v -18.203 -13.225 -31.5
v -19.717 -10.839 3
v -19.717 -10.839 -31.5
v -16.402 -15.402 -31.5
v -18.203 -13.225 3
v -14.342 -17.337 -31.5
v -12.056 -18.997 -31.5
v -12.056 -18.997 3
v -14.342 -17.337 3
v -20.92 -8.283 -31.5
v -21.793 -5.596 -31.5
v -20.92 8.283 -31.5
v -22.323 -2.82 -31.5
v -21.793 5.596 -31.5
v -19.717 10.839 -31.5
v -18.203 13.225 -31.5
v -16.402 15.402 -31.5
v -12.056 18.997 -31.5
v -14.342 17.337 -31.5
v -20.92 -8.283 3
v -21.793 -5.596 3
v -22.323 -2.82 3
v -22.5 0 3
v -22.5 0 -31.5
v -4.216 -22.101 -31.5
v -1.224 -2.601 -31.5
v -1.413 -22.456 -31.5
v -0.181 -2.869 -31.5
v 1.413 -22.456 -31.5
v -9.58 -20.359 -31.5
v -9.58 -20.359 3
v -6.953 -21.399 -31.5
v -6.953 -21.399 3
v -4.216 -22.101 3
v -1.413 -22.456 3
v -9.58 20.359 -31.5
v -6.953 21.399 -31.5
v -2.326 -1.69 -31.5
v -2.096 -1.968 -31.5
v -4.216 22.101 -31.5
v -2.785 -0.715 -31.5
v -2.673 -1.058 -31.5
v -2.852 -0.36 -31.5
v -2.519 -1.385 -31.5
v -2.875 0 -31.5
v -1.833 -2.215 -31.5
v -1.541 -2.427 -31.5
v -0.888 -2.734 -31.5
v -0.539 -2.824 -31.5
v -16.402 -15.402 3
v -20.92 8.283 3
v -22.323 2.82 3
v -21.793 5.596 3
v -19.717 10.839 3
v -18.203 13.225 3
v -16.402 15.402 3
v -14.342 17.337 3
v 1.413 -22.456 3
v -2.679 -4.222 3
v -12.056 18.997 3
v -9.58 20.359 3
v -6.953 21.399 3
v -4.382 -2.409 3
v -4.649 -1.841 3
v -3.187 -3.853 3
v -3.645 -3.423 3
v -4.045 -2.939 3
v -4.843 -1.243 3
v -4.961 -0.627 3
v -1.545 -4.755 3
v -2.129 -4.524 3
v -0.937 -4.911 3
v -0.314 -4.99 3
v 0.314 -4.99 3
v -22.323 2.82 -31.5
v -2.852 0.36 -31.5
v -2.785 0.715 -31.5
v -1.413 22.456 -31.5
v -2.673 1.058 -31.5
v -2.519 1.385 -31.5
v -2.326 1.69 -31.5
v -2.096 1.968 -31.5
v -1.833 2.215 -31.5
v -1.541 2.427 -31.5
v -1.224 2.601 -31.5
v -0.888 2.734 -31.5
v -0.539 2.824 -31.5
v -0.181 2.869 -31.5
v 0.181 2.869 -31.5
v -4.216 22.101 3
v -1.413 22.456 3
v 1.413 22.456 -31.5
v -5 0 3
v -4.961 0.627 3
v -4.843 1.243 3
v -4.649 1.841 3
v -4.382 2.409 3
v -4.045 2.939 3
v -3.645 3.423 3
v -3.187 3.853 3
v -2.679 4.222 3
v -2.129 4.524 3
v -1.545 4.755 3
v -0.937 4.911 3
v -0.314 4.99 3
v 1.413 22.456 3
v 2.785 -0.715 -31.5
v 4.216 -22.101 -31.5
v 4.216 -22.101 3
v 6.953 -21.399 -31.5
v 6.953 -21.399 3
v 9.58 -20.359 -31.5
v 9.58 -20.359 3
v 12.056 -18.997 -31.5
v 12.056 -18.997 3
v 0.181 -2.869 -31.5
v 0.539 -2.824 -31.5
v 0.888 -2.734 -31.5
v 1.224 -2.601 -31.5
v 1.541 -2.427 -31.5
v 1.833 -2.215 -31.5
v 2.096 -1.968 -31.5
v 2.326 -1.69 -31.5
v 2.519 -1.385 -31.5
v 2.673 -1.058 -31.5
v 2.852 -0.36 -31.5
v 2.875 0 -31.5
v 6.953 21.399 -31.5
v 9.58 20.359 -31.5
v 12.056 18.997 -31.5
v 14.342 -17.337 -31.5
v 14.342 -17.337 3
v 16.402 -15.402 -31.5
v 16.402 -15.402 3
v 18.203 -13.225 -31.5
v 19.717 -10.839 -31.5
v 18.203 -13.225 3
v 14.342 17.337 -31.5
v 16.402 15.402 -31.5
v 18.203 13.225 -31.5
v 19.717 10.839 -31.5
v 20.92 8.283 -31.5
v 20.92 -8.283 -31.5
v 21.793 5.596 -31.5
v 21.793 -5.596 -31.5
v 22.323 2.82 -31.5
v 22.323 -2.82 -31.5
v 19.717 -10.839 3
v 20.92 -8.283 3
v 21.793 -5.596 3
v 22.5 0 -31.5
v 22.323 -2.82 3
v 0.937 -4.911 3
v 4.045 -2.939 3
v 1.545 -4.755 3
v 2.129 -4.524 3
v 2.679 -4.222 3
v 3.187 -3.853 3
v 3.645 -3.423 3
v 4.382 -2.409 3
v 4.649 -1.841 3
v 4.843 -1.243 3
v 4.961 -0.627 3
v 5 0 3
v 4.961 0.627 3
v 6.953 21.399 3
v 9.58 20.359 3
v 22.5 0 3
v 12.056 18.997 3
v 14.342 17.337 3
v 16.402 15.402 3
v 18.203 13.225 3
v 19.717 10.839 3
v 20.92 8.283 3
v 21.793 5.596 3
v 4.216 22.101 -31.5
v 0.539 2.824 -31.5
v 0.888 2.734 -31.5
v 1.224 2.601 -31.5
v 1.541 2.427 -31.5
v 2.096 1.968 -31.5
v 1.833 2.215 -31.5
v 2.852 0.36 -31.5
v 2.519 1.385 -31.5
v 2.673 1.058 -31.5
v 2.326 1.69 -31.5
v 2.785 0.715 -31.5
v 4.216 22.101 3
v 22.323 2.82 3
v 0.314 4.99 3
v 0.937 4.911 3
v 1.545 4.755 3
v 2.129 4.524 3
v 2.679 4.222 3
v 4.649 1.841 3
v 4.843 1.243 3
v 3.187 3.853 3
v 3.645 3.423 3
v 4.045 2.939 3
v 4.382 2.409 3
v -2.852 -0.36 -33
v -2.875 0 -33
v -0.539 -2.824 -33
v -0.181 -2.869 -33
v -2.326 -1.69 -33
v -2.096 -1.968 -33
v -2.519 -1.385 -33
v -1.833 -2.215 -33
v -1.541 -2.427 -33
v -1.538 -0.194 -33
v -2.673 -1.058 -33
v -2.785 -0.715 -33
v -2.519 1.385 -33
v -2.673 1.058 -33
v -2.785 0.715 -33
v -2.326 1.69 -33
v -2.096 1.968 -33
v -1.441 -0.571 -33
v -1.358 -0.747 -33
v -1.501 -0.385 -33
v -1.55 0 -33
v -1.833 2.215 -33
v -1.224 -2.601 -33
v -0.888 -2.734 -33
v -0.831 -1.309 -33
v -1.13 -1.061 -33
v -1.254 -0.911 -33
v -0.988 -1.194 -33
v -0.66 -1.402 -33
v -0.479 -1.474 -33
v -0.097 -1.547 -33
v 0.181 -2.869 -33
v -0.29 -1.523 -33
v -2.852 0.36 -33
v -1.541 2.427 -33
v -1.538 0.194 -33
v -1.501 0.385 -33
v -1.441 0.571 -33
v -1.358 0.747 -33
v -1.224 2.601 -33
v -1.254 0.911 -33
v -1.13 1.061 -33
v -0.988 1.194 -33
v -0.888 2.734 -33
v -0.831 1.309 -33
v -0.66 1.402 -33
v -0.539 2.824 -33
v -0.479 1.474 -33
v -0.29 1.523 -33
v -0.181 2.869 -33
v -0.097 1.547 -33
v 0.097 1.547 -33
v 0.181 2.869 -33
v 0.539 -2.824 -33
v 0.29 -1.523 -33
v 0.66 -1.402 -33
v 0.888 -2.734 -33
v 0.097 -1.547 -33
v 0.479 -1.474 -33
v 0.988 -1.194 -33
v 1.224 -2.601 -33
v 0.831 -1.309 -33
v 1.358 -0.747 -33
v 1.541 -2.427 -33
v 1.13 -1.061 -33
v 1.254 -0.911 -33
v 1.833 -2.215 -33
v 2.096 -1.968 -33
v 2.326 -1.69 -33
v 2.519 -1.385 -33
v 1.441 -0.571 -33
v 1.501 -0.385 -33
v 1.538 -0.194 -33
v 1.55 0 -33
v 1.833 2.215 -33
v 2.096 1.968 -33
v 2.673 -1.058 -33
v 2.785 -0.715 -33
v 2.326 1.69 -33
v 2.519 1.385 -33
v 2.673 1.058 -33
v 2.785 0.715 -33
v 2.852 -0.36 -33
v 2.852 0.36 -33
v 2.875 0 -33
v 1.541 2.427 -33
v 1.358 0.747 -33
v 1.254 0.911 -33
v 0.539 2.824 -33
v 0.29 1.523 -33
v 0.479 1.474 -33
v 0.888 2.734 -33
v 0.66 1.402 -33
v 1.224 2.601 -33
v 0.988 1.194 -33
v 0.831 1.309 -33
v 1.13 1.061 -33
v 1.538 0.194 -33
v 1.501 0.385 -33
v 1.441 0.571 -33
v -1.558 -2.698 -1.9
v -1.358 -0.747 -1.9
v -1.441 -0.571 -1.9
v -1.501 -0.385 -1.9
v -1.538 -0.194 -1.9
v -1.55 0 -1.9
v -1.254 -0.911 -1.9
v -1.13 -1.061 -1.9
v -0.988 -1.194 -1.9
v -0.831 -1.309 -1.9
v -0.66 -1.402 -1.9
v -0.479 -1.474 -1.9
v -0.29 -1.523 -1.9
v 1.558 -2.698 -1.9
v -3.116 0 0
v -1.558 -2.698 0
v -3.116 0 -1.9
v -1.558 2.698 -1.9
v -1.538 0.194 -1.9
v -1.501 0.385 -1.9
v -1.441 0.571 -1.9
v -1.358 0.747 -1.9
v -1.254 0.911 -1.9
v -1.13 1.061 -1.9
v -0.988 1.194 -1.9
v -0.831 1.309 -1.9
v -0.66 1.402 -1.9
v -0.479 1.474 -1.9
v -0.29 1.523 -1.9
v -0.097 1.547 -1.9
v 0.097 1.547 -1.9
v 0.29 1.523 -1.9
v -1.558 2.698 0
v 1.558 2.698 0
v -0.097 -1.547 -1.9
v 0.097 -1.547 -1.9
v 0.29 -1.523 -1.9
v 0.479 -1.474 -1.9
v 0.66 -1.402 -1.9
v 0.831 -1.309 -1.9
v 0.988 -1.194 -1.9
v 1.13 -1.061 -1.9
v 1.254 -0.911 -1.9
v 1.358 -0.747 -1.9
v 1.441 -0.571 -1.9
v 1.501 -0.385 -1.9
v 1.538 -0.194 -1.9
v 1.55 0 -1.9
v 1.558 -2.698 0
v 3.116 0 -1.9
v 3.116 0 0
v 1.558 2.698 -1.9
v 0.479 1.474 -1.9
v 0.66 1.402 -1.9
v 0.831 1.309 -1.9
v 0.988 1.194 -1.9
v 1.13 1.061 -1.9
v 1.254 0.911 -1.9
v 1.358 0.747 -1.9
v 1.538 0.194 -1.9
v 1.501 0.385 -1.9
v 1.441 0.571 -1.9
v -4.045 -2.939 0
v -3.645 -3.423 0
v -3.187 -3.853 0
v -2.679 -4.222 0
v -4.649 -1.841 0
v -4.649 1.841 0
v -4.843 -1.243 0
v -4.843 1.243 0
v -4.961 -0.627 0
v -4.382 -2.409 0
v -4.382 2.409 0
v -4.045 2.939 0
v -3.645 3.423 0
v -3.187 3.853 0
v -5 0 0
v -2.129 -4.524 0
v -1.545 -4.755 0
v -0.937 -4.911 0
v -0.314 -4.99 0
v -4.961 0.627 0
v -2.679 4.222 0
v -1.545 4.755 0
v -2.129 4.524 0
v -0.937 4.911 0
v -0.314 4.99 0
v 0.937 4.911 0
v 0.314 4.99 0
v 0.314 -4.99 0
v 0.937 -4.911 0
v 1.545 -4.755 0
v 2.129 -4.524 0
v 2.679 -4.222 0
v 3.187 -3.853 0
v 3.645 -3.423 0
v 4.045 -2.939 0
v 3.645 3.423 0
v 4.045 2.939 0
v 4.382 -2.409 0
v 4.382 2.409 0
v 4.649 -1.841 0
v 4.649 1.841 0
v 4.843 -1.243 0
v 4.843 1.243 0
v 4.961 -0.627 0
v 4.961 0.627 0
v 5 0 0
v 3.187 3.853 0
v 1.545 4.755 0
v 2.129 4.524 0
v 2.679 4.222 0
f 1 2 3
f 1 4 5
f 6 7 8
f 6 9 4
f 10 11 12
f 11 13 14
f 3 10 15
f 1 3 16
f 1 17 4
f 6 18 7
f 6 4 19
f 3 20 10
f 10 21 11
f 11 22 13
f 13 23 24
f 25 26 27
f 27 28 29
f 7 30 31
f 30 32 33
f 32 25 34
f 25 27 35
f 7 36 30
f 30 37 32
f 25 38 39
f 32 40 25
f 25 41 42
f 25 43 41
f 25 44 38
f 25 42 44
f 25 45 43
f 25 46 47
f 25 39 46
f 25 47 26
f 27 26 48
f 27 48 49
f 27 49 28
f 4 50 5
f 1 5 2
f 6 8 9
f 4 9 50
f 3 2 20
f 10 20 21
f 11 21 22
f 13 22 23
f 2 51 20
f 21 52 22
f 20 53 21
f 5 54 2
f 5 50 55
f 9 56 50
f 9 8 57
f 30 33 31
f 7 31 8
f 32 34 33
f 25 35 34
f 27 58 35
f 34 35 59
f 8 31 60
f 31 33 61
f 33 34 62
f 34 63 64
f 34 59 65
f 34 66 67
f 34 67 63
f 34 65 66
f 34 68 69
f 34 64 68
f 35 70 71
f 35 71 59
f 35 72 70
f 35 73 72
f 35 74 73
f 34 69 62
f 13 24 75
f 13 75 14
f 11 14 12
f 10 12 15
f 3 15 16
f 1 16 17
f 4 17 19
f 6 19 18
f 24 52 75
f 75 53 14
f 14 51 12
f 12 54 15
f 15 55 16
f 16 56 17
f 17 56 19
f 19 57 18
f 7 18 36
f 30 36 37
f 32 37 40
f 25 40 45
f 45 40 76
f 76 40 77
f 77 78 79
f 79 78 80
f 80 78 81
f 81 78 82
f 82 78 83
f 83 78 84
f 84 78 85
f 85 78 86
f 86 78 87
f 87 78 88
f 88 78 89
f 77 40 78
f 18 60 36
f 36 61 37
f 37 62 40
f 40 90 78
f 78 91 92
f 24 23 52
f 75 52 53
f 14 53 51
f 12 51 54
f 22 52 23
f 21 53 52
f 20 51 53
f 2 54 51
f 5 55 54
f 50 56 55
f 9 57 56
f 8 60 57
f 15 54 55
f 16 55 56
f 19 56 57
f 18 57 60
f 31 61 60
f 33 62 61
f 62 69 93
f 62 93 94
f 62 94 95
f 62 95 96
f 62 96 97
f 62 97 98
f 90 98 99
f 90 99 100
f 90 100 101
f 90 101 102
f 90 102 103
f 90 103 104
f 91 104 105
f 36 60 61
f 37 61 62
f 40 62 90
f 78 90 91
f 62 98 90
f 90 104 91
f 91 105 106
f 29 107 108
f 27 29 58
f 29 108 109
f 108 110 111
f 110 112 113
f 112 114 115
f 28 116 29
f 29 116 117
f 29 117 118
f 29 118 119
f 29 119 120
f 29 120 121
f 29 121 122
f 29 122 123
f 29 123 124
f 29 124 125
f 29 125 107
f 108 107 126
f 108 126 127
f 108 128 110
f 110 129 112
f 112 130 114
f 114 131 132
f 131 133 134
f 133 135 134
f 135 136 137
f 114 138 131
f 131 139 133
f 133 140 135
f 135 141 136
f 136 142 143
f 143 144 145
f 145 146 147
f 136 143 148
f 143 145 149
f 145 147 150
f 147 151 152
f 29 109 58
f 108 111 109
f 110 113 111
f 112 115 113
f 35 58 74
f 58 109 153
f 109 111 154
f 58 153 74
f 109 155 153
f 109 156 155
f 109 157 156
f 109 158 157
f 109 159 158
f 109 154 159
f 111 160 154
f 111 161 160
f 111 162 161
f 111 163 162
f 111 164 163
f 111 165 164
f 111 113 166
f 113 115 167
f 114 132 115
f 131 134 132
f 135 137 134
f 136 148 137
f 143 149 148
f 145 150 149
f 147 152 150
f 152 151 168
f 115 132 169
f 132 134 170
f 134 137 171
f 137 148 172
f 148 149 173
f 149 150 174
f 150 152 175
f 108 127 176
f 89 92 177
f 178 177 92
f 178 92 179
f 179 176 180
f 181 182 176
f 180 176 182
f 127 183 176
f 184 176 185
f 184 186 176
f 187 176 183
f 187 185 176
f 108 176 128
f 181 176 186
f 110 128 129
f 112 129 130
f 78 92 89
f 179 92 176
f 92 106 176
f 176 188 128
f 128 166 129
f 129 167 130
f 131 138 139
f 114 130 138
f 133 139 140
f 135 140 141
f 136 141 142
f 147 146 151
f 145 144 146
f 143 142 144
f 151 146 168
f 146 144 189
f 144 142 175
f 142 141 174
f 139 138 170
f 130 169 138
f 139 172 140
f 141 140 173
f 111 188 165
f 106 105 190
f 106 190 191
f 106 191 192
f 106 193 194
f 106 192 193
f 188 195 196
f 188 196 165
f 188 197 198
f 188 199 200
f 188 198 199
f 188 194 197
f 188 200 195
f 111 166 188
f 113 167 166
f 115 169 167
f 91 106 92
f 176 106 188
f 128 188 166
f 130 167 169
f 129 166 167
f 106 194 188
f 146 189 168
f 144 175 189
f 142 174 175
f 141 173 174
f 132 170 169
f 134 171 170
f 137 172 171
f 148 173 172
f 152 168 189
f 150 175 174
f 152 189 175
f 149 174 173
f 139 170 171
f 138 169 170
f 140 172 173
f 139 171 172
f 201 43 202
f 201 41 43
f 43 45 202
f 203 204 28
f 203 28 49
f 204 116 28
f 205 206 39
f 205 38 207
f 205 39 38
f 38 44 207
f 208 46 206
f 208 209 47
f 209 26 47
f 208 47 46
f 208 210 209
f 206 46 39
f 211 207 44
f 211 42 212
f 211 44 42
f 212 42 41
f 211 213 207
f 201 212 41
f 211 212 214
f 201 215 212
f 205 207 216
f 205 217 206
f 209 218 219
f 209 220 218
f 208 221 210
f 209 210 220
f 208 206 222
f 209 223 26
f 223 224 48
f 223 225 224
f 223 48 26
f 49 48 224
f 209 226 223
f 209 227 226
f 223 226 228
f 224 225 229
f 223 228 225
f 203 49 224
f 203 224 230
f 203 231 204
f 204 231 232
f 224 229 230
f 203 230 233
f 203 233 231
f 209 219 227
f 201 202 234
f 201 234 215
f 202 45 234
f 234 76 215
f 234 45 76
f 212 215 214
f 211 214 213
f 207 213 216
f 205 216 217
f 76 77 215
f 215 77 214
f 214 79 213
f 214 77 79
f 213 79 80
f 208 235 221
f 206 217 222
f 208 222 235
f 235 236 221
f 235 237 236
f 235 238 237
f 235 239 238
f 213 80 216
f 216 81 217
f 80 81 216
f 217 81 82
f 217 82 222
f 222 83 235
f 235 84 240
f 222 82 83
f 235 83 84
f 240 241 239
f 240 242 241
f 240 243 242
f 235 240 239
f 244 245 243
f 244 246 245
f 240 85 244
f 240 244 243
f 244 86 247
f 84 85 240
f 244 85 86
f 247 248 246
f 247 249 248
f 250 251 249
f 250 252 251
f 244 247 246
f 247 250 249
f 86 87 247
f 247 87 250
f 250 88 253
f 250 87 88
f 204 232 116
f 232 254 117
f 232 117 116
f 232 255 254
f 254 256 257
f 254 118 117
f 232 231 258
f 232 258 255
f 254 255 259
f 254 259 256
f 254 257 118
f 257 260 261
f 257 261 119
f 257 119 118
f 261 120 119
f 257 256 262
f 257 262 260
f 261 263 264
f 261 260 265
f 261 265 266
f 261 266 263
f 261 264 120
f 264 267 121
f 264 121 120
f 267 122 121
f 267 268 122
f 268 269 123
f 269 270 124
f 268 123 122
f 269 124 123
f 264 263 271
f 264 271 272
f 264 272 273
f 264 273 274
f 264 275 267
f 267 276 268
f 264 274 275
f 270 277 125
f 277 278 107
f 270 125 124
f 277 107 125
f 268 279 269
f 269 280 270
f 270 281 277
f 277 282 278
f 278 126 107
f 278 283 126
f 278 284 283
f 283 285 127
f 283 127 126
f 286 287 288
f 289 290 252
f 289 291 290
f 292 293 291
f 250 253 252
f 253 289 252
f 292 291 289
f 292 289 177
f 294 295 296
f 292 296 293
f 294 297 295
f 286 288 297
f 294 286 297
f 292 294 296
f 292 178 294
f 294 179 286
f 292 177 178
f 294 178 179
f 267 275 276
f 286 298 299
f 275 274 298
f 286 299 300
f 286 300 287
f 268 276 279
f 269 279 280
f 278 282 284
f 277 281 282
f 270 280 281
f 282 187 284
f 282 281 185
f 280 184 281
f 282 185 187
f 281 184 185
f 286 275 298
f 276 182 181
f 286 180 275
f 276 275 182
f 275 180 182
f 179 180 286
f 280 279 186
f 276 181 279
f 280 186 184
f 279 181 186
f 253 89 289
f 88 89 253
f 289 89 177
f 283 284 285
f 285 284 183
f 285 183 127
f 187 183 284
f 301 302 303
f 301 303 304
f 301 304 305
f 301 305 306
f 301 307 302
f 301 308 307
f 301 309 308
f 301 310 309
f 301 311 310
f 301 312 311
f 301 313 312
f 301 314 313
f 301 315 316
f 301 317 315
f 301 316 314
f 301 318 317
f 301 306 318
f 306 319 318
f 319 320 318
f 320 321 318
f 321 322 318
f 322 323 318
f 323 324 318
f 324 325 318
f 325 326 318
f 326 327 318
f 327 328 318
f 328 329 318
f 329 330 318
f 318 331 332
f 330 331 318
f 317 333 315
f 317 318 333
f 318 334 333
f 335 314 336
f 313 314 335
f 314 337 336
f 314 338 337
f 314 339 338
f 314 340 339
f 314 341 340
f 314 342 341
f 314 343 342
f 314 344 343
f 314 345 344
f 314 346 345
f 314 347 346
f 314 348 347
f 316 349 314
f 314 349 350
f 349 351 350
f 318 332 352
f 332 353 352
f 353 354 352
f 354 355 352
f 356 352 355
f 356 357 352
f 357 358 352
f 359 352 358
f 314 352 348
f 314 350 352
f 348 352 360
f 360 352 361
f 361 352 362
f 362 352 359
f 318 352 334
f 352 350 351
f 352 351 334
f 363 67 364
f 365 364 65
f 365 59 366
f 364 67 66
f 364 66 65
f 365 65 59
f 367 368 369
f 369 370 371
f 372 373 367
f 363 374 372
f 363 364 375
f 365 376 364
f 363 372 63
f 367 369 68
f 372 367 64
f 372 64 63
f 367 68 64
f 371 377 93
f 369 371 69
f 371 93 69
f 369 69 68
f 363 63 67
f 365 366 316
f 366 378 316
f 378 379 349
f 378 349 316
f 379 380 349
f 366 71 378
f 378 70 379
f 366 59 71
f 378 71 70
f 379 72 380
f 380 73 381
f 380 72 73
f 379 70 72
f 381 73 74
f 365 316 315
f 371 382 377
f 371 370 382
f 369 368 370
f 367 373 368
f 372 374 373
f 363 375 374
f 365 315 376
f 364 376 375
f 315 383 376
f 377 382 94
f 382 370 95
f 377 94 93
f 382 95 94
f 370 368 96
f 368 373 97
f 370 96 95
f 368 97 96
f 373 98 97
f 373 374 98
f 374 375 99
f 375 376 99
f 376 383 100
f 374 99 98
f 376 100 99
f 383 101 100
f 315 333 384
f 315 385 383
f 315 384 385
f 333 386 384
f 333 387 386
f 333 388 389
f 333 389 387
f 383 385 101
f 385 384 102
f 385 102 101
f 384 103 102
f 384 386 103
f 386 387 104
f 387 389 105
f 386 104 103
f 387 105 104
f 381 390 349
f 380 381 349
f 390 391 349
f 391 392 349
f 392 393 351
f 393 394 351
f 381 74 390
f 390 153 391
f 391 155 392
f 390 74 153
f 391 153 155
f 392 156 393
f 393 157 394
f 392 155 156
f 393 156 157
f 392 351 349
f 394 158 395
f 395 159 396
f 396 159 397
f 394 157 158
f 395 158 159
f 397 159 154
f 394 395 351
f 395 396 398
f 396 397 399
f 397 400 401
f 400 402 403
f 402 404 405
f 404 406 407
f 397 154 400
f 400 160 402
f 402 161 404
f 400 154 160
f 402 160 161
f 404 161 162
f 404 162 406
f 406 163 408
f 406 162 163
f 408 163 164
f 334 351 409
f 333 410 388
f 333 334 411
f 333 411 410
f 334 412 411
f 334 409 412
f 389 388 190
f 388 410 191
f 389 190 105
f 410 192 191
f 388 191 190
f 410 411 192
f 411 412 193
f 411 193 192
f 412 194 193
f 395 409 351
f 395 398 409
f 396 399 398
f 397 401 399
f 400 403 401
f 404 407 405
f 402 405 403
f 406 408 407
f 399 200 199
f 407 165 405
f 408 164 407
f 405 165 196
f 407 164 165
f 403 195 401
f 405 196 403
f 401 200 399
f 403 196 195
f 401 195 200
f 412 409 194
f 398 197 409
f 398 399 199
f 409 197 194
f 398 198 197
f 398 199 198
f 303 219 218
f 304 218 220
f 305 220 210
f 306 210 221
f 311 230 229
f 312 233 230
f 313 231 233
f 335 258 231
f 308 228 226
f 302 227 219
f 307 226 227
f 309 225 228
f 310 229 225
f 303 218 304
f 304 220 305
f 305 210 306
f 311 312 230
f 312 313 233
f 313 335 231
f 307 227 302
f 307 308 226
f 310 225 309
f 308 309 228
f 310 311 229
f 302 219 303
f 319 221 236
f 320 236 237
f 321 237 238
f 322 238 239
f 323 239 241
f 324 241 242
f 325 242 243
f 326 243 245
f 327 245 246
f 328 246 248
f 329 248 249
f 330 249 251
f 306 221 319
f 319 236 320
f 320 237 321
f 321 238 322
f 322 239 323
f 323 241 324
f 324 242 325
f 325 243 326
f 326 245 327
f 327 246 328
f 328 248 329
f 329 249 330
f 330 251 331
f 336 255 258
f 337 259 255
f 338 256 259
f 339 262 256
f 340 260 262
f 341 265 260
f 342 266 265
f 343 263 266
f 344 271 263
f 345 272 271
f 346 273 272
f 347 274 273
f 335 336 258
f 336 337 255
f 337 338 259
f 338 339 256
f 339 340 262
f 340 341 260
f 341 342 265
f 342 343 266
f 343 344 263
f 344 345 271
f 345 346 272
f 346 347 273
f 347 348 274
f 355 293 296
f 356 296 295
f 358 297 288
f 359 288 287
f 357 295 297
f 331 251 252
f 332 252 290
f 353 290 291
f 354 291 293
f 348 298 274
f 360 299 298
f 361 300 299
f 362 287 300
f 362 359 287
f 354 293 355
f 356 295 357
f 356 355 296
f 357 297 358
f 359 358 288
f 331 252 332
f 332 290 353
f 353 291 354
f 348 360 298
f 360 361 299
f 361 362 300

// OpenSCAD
$fn = 50;

difference() {
	union() {
		translate(v = [0, 0, -31.5]) {
			cylinder(h = 34.5, r = 22.5);
		}
		#translate(v = [0, 0, -33.0]) {
			cylinder(h = 33, r = 2.875);
		}
	}
	union() {
		translate(v = [0, 0, 0]) {
			rotate(a = [0, 0, 0]) {
				difference() {
					union() {
						translate(v = [0, 0, -1.9]) {
							linear_extrude(height = 1.9) {
								polygon(points = [[3.1158, 0.0], [1.5579000000000005, 2.698361953111554], [-1.5578999999999994, 2.6983619531115544], [-3.1158, 3.815754496783323e-16], [-1.5579000000000014, -2.6983619531115535], [1.557899999999998, -2.6983619531115552]]);
							}
						}
					}
					union();
				}
			}
		}
		#cylinder(h = 3, r = 5.0);
		#translate(v = [0, 0, -100.0]) {
			cylinder(h = 200, r = 1.55);
		}
	}
}
